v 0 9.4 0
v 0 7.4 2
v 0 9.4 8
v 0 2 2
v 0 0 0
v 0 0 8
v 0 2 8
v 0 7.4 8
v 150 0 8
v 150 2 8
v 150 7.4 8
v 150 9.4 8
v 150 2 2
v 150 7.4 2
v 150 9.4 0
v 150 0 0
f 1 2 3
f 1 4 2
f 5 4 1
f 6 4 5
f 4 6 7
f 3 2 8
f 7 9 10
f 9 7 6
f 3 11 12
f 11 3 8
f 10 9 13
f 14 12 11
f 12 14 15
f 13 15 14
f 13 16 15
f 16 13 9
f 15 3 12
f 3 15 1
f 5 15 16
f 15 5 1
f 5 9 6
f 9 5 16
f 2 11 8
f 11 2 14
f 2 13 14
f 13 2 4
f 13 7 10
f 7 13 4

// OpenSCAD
difference(){
    cube([150,9.4,8]);
    translate([0,2,2]) cube([150,5.4,6]);
}
